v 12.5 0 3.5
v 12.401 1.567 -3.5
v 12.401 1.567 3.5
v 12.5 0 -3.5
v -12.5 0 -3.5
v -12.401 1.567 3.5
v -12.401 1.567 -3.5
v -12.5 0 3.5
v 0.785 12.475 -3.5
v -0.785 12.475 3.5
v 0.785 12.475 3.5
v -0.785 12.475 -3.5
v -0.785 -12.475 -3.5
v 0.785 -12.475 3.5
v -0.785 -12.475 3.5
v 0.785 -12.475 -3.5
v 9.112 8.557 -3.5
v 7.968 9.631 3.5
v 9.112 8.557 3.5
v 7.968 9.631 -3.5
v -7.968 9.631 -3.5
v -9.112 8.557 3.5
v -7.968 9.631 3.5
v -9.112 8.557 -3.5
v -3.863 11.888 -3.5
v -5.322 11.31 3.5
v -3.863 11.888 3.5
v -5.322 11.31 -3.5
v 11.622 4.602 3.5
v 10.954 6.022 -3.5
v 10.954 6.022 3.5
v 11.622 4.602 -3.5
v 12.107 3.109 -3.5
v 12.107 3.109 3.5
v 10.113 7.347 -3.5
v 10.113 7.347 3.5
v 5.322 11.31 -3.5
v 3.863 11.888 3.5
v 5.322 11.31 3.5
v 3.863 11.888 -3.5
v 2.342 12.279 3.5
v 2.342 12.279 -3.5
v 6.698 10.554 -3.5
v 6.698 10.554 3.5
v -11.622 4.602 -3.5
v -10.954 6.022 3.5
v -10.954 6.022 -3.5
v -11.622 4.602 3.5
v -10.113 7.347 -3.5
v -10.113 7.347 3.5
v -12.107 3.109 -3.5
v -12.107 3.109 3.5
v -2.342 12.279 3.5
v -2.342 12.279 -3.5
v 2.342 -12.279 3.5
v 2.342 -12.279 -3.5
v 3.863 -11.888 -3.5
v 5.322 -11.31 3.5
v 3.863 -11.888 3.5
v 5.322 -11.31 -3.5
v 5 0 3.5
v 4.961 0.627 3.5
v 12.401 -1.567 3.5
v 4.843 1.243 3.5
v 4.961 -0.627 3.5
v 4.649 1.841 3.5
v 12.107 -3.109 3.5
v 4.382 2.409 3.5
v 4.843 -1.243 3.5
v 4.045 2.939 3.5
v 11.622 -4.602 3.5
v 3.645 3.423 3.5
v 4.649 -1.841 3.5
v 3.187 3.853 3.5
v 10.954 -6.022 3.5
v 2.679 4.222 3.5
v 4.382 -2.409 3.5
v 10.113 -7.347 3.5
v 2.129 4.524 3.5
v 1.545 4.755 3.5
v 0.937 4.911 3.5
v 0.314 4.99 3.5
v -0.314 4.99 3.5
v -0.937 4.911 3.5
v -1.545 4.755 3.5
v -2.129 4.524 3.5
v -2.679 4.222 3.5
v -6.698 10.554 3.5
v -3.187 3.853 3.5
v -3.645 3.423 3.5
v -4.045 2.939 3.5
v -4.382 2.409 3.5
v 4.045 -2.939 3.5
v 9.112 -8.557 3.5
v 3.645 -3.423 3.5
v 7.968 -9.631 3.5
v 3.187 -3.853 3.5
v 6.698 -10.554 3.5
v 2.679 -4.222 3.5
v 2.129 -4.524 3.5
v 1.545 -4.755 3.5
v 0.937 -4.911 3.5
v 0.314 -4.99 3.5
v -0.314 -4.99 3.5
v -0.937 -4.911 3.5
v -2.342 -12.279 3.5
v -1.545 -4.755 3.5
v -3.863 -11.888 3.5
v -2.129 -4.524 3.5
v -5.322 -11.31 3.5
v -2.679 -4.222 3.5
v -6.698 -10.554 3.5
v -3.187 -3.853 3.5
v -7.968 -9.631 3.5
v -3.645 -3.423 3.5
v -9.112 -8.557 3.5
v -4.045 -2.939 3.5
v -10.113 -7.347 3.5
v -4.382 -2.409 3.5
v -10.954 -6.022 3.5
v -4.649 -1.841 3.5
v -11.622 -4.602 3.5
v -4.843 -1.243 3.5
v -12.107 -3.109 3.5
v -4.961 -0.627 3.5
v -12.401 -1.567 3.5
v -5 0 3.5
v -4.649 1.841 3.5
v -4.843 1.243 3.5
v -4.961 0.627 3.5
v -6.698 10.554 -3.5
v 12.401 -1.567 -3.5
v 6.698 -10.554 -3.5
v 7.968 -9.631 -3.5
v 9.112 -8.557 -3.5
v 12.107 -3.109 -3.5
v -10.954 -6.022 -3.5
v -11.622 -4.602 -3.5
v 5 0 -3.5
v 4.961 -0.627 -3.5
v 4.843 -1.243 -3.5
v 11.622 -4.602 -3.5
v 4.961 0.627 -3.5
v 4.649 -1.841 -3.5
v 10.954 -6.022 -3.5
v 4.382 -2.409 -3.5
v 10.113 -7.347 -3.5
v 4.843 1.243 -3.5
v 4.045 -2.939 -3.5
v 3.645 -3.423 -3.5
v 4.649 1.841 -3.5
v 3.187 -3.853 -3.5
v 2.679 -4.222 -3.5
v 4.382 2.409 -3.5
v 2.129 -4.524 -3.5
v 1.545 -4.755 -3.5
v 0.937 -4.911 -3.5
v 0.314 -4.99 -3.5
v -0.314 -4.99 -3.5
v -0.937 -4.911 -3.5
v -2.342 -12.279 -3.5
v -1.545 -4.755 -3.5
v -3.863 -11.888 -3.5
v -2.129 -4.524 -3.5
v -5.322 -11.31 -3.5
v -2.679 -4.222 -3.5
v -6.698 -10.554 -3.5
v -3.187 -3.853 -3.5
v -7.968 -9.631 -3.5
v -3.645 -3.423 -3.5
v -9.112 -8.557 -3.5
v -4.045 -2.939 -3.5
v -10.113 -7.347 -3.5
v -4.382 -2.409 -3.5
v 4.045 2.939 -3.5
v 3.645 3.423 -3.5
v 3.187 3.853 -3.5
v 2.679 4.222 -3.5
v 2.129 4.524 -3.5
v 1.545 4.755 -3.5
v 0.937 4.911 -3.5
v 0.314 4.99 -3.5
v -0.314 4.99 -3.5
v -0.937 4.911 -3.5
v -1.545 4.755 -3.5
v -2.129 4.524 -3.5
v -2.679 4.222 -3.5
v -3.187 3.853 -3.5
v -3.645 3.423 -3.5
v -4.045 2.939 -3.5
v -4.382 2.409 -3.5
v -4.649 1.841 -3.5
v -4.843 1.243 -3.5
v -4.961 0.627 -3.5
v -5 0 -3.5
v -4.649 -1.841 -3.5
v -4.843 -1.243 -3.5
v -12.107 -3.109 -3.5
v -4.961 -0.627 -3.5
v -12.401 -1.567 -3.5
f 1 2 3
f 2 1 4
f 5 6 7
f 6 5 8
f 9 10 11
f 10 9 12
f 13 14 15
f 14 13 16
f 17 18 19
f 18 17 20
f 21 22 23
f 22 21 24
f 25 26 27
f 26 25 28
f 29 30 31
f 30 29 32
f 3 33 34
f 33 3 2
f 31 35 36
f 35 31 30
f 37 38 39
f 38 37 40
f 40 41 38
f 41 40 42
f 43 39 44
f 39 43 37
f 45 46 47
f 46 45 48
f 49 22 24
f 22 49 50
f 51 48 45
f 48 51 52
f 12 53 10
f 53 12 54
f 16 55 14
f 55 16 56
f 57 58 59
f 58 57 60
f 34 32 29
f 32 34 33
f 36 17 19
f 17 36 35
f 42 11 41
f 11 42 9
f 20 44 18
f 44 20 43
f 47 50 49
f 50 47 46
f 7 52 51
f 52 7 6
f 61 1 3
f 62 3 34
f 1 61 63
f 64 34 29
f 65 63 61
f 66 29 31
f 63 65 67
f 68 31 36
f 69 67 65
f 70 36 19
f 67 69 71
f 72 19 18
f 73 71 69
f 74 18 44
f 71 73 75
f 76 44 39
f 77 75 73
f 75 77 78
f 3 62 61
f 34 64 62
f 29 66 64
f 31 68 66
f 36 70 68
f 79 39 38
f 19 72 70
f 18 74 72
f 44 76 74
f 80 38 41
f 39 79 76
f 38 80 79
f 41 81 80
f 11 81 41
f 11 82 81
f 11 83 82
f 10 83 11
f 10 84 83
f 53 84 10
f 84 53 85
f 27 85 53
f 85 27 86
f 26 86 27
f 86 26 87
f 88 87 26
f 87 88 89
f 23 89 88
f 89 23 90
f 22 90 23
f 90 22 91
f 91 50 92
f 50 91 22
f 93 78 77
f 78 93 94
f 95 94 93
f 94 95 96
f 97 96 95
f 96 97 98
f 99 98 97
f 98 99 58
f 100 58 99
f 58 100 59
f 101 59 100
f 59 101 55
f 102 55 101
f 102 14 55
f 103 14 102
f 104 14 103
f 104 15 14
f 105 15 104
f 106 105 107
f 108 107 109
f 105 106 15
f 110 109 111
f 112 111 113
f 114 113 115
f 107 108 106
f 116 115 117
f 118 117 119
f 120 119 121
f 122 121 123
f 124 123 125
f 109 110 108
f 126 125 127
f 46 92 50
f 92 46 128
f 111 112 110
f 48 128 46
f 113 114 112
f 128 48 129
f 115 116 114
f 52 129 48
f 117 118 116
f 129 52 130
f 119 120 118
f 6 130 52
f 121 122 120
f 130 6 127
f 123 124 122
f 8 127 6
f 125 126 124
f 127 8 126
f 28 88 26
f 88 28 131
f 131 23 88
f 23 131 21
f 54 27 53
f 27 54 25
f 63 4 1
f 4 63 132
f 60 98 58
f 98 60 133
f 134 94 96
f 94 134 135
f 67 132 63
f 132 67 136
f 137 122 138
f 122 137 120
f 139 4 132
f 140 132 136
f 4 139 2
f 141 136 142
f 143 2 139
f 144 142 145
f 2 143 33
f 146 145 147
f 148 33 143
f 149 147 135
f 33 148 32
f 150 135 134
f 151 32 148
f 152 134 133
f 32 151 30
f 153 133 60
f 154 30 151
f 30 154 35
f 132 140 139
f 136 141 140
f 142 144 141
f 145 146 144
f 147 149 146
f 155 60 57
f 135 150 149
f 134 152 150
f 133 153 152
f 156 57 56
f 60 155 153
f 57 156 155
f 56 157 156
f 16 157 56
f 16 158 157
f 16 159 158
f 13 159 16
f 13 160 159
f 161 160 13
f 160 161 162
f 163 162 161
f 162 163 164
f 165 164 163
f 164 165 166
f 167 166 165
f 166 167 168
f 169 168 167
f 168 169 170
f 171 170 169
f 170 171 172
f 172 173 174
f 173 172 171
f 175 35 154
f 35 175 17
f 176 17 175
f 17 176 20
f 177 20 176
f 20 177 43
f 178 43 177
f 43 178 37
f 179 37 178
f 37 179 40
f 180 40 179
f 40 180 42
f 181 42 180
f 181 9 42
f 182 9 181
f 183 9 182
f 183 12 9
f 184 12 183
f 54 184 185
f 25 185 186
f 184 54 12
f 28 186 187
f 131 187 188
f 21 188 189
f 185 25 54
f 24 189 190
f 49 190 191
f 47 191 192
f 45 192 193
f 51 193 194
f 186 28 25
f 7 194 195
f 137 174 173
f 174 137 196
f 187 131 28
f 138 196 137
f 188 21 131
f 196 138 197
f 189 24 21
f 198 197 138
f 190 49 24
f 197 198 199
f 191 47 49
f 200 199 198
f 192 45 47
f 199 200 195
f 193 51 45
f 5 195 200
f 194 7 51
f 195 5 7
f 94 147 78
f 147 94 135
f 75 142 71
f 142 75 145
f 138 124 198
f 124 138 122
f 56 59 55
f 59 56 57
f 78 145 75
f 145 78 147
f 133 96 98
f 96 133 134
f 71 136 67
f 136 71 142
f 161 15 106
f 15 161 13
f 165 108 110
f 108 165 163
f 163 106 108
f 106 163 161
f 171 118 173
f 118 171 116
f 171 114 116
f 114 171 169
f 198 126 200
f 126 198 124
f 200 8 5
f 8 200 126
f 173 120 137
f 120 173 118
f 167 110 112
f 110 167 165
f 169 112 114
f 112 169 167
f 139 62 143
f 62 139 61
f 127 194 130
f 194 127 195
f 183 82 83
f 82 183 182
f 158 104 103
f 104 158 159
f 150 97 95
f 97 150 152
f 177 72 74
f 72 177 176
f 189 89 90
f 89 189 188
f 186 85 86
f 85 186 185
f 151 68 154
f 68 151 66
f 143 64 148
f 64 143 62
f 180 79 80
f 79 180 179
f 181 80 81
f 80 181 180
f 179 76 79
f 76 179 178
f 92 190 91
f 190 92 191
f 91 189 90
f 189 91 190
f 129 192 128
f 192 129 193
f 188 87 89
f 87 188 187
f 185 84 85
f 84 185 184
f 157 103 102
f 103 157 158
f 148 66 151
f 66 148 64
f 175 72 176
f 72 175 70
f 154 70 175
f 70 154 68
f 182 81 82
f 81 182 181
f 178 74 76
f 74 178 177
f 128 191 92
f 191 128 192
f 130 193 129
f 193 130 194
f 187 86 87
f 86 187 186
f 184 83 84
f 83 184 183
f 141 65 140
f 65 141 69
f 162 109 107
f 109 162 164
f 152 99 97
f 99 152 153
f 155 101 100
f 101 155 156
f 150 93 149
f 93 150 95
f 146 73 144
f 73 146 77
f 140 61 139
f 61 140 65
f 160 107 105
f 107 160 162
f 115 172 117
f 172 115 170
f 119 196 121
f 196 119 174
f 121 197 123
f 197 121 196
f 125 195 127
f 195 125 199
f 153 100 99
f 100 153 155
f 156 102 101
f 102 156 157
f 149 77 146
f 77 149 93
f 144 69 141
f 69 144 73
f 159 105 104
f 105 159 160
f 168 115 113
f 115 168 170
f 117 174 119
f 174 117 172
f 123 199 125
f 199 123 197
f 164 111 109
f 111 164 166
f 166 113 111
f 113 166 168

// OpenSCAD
$fn = 50;


difference() {
	union() {
		translate(v = [0, 0, -3.5000000000]) {
			cylinder(h = 7, r = 12.5000000000);
		}
	}
	union() {
		translate(v = [0, 0, -100.0000000000]) {
			cylinder(h = 200, r = 5);
		}
	}
}
